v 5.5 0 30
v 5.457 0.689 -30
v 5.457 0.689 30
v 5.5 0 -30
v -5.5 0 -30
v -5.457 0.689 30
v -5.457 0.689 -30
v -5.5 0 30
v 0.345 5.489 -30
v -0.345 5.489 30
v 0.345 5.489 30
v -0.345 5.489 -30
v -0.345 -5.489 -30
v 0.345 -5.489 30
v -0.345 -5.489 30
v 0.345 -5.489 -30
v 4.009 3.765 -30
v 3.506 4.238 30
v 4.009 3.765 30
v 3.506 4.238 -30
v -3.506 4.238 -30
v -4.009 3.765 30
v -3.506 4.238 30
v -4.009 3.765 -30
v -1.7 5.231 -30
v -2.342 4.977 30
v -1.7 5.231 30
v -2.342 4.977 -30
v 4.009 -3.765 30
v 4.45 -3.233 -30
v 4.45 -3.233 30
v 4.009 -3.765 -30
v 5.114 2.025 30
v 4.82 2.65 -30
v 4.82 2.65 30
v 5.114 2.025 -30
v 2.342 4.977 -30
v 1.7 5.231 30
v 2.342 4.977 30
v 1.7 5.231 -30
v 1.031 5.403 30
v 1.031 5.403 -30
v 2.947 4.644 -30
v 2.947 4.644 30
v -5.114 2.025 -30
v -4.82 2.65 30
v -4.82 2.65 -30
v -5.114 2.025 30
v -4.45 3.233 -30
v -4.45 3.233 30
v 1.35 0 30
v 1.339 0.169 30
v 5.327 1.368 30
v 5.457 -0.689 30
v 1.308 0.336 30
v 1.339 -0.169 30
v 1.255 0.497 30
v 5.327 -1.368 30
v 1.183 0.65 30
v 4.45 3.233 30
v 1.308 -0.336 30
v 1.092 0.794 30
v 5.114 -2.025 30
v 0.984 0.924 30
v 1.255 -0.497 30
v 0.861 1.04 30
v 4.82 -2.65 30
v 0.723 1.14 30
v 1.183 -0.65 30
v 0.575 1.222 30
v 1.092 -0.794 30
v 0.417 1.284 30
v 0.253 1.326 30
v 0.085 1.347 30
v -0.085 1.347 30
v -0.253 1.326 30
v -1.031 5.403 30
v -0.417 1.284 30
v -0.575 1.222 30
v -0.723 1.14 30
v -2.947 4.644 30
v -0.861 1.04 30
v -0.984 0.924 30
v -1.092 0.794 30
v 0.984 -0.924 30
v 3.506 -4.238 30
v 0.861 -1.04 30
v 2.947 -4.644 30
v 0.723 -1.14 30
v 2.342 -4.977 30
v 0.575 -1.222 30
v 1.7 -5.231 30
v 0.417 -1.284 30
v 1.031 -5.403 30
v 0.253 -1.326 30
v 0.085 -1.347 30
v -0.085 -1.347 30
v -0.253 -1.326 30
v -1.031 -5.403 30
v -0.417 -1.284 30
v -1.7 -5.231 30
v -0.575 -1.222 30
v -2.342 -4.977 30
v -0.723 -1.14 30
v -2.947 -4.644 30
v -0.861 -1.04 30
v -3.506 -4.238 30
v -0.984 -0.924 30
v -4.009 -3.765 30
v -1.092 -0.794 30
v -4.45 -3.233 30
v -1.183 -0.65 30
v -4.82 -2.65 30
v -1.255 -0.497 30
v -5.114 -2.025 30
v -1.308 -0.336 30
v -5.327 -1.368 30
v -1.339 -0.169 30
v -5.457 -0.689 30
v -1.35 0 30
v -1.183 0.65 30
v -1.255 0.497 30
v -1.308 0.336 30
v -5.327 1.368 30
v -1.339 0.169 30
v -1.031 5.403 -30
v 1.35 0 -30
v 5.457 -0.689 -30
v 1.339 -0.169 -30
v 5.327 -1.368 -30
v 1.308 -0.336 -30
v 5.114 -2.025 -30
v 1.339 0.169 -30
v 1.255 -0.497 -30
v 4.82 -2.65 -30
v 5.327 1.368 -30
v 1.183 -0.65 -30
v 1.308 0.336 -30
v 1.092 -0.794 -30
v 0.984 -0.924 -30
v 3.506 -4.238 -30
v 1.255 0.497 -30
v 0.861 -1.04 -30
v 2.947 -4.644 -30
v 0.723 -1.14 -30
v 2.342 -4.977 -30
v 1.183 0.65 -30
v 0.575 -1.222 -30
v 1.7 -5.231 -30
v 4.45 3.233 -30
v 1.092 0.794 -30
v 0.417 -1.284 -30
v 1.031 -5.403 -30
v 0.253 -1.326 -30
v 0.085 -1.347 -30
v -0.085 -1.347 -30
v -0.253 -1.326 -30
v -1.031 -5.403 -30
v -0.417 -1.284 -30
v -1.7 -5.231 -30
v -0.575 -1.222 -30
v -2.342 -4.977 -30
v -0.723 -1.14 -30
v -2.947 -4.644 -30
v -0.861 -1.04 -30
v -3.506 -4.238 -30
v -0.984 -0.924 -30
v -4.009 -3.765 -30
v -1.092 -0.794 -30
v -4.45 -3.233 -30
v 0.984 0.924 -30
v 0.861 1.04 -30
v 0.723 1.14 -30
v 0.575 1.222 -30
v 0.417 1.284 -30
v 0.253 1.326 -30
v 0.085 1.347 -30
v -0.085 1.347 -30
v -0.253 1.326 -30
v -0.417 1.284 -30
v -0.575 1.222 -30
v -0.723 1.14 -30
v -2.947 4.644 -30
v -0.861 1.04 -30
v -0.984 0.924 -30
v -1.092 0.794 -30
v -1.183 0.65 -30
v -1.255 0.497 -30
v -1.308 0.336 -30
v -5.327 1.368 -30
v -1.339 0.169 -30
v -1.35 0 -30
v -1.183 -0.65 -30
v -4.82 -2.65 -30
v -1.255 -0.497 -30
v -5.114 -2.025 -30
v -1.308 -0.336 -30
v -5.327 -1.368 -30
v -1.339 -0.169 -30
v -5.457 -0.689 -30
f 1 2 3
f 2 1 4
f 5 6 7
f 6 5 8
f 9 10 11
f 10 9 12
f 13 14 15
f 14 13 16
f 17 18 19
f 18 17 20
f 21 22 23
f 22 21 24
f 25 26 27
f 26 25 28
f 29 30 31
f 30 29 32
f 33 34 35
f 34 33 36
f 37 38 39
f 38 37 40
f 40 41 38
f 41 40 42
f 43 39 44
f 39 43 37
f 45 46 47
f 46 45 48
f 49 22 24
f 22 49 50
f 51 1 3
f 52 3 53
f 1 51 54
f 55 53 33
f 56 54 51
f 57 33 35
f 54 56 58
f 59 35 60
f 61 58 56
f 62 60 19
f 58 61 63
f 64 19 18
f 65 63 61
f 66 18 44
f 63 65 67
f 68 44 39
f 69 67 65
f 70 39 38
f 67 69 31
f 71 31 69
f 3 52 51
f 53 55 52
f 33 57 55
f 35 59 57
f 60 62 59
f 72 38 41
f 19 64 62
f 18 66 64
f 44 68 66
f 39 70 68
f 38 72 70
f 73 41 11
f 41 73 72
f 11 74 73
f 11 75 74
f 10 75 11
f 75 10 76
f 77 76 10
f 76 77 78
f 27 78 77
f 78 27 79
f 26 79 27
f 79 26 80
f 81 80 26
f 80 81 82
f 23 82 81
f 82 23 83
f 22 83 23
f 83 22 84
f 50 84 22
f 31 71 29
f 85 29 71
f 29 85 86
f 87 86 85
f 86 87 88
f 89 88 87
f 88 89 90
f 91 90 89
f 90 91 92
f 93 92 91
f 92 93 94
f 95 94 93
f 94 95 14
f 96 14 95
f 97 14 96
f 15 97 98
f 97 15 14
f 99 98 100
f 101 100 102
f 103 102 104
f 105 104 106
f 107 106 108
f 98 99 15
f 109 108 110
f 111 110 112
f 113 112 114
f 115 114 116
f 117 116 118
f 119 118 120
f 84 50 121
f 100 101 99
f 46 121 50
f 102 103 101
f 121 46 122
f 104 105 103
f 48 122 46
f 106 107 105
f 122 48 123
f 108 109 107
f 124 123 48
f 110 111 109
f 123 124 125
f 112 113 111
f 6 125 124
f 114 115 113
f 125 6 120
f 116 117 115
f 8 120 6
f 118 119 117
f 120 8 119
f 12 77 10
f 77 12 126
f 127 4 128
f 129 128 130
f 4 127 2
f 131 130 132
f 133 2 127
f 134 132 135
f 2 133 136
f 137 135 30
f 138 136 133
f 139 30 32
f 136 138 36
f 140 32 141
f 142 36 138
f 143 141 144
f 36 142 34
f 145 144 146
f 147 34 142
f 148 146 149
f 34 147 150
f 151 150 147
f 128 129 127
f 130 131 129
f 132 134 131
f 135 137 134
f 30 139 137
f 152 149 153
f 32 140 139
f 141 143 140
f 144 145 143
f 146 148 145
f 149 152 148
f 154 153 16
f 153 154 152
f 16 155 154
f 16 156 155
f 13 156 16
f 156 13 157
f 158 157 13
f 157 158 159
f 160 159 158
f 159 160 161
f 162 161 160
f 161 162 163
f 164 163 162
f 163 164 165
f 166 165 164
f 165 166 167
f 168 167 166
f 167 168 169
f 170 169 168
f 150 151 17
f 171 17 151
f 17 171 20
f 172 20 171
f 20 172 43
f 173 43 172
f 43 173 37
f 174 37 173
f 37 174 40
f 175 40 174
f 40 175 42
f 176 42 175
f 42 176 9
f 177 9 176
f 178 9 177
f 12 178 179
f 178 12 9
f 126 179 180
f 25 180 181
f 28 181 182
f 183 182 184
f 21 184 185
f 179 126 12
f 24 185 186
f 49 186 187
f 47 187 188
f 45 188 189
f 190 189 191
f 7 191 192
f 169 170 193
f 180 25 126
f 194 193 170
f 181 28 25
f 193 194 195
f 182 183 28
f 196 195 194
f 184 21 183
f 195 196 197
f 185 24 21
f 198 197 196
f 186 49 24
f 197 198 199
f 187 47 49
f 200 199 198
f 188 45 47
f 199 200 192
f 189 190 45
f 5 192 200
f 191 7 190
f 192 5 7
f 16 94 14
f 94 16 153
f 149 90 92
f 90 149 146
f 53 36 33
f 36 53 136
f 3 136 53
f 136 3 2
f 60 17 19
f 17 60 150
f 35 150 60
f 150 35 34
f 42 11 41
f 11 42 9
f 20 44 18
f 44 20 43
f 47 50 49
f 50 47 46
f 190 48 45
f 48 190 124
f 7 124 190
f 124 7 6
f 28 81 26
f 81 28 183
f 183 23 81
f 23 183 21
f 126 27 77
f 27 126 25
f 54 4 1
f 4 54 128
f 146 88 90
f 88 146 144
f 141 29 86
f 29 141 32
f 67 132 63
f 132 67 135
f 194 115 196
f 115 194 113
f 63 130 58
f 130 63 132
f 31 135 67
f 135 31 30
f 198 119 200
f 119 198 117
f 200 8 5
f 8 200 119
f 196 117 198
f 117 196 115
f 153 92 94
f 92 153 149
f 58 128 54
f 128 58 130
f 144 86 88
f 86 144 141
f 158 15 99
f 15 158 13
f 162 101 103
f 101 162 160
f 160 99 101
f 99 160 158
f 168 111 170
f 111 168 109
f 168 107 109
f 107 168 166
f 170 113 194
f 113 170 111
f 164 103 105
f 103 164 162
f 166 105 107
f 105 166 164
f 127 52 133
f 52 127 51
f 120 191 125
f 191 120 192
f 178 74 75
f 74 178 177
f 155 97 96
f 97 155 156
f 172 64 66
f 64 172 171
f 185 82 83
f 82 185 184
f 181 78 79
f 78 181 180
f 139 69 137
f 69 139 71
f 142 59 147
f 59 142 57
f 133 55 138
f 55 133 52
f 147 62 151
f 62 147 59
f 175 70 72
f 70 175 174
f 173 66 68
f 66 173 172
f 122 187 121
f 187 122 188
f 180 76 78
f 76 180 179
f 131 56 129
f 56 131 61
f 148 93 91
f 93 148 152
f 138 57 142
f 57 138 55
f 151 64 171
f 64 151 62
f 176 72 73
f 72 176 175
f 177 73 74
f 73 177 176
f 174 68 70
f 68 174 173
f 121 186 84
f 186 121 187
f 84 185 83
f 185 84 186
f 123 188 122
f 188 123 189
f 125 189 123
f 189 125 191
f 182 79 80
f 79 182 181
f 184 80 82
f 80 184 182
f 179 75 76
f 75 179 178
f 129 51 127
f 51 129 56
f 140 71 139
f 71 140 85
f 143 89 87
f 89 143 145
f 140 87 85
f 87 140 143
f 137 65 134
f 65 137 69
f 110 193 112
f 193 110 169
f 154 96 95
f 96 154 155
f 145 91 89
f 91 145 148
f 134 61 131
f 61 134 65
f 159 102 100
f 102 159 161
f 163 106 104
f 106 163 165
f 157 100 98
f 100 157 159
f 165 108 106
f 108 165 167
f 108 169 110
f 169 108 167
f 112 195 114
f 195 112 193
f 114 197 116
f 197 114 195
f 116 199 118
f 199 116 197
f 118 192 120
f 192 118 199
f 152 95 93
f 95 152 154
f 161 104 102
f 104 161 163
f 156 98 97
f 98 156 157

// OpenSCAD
$fn = 50;


difference() {
	union() {
		translate(v = [0, 0, -30.0000000000]) {
			cylinder(h = 60, r = 5.5000000000);
		}
	}
	union() {
		translate(v = [0, 0, -100.0000000000]) {
			cylinder(h = 200, r = 1.3500000000);
		}
	}
}
